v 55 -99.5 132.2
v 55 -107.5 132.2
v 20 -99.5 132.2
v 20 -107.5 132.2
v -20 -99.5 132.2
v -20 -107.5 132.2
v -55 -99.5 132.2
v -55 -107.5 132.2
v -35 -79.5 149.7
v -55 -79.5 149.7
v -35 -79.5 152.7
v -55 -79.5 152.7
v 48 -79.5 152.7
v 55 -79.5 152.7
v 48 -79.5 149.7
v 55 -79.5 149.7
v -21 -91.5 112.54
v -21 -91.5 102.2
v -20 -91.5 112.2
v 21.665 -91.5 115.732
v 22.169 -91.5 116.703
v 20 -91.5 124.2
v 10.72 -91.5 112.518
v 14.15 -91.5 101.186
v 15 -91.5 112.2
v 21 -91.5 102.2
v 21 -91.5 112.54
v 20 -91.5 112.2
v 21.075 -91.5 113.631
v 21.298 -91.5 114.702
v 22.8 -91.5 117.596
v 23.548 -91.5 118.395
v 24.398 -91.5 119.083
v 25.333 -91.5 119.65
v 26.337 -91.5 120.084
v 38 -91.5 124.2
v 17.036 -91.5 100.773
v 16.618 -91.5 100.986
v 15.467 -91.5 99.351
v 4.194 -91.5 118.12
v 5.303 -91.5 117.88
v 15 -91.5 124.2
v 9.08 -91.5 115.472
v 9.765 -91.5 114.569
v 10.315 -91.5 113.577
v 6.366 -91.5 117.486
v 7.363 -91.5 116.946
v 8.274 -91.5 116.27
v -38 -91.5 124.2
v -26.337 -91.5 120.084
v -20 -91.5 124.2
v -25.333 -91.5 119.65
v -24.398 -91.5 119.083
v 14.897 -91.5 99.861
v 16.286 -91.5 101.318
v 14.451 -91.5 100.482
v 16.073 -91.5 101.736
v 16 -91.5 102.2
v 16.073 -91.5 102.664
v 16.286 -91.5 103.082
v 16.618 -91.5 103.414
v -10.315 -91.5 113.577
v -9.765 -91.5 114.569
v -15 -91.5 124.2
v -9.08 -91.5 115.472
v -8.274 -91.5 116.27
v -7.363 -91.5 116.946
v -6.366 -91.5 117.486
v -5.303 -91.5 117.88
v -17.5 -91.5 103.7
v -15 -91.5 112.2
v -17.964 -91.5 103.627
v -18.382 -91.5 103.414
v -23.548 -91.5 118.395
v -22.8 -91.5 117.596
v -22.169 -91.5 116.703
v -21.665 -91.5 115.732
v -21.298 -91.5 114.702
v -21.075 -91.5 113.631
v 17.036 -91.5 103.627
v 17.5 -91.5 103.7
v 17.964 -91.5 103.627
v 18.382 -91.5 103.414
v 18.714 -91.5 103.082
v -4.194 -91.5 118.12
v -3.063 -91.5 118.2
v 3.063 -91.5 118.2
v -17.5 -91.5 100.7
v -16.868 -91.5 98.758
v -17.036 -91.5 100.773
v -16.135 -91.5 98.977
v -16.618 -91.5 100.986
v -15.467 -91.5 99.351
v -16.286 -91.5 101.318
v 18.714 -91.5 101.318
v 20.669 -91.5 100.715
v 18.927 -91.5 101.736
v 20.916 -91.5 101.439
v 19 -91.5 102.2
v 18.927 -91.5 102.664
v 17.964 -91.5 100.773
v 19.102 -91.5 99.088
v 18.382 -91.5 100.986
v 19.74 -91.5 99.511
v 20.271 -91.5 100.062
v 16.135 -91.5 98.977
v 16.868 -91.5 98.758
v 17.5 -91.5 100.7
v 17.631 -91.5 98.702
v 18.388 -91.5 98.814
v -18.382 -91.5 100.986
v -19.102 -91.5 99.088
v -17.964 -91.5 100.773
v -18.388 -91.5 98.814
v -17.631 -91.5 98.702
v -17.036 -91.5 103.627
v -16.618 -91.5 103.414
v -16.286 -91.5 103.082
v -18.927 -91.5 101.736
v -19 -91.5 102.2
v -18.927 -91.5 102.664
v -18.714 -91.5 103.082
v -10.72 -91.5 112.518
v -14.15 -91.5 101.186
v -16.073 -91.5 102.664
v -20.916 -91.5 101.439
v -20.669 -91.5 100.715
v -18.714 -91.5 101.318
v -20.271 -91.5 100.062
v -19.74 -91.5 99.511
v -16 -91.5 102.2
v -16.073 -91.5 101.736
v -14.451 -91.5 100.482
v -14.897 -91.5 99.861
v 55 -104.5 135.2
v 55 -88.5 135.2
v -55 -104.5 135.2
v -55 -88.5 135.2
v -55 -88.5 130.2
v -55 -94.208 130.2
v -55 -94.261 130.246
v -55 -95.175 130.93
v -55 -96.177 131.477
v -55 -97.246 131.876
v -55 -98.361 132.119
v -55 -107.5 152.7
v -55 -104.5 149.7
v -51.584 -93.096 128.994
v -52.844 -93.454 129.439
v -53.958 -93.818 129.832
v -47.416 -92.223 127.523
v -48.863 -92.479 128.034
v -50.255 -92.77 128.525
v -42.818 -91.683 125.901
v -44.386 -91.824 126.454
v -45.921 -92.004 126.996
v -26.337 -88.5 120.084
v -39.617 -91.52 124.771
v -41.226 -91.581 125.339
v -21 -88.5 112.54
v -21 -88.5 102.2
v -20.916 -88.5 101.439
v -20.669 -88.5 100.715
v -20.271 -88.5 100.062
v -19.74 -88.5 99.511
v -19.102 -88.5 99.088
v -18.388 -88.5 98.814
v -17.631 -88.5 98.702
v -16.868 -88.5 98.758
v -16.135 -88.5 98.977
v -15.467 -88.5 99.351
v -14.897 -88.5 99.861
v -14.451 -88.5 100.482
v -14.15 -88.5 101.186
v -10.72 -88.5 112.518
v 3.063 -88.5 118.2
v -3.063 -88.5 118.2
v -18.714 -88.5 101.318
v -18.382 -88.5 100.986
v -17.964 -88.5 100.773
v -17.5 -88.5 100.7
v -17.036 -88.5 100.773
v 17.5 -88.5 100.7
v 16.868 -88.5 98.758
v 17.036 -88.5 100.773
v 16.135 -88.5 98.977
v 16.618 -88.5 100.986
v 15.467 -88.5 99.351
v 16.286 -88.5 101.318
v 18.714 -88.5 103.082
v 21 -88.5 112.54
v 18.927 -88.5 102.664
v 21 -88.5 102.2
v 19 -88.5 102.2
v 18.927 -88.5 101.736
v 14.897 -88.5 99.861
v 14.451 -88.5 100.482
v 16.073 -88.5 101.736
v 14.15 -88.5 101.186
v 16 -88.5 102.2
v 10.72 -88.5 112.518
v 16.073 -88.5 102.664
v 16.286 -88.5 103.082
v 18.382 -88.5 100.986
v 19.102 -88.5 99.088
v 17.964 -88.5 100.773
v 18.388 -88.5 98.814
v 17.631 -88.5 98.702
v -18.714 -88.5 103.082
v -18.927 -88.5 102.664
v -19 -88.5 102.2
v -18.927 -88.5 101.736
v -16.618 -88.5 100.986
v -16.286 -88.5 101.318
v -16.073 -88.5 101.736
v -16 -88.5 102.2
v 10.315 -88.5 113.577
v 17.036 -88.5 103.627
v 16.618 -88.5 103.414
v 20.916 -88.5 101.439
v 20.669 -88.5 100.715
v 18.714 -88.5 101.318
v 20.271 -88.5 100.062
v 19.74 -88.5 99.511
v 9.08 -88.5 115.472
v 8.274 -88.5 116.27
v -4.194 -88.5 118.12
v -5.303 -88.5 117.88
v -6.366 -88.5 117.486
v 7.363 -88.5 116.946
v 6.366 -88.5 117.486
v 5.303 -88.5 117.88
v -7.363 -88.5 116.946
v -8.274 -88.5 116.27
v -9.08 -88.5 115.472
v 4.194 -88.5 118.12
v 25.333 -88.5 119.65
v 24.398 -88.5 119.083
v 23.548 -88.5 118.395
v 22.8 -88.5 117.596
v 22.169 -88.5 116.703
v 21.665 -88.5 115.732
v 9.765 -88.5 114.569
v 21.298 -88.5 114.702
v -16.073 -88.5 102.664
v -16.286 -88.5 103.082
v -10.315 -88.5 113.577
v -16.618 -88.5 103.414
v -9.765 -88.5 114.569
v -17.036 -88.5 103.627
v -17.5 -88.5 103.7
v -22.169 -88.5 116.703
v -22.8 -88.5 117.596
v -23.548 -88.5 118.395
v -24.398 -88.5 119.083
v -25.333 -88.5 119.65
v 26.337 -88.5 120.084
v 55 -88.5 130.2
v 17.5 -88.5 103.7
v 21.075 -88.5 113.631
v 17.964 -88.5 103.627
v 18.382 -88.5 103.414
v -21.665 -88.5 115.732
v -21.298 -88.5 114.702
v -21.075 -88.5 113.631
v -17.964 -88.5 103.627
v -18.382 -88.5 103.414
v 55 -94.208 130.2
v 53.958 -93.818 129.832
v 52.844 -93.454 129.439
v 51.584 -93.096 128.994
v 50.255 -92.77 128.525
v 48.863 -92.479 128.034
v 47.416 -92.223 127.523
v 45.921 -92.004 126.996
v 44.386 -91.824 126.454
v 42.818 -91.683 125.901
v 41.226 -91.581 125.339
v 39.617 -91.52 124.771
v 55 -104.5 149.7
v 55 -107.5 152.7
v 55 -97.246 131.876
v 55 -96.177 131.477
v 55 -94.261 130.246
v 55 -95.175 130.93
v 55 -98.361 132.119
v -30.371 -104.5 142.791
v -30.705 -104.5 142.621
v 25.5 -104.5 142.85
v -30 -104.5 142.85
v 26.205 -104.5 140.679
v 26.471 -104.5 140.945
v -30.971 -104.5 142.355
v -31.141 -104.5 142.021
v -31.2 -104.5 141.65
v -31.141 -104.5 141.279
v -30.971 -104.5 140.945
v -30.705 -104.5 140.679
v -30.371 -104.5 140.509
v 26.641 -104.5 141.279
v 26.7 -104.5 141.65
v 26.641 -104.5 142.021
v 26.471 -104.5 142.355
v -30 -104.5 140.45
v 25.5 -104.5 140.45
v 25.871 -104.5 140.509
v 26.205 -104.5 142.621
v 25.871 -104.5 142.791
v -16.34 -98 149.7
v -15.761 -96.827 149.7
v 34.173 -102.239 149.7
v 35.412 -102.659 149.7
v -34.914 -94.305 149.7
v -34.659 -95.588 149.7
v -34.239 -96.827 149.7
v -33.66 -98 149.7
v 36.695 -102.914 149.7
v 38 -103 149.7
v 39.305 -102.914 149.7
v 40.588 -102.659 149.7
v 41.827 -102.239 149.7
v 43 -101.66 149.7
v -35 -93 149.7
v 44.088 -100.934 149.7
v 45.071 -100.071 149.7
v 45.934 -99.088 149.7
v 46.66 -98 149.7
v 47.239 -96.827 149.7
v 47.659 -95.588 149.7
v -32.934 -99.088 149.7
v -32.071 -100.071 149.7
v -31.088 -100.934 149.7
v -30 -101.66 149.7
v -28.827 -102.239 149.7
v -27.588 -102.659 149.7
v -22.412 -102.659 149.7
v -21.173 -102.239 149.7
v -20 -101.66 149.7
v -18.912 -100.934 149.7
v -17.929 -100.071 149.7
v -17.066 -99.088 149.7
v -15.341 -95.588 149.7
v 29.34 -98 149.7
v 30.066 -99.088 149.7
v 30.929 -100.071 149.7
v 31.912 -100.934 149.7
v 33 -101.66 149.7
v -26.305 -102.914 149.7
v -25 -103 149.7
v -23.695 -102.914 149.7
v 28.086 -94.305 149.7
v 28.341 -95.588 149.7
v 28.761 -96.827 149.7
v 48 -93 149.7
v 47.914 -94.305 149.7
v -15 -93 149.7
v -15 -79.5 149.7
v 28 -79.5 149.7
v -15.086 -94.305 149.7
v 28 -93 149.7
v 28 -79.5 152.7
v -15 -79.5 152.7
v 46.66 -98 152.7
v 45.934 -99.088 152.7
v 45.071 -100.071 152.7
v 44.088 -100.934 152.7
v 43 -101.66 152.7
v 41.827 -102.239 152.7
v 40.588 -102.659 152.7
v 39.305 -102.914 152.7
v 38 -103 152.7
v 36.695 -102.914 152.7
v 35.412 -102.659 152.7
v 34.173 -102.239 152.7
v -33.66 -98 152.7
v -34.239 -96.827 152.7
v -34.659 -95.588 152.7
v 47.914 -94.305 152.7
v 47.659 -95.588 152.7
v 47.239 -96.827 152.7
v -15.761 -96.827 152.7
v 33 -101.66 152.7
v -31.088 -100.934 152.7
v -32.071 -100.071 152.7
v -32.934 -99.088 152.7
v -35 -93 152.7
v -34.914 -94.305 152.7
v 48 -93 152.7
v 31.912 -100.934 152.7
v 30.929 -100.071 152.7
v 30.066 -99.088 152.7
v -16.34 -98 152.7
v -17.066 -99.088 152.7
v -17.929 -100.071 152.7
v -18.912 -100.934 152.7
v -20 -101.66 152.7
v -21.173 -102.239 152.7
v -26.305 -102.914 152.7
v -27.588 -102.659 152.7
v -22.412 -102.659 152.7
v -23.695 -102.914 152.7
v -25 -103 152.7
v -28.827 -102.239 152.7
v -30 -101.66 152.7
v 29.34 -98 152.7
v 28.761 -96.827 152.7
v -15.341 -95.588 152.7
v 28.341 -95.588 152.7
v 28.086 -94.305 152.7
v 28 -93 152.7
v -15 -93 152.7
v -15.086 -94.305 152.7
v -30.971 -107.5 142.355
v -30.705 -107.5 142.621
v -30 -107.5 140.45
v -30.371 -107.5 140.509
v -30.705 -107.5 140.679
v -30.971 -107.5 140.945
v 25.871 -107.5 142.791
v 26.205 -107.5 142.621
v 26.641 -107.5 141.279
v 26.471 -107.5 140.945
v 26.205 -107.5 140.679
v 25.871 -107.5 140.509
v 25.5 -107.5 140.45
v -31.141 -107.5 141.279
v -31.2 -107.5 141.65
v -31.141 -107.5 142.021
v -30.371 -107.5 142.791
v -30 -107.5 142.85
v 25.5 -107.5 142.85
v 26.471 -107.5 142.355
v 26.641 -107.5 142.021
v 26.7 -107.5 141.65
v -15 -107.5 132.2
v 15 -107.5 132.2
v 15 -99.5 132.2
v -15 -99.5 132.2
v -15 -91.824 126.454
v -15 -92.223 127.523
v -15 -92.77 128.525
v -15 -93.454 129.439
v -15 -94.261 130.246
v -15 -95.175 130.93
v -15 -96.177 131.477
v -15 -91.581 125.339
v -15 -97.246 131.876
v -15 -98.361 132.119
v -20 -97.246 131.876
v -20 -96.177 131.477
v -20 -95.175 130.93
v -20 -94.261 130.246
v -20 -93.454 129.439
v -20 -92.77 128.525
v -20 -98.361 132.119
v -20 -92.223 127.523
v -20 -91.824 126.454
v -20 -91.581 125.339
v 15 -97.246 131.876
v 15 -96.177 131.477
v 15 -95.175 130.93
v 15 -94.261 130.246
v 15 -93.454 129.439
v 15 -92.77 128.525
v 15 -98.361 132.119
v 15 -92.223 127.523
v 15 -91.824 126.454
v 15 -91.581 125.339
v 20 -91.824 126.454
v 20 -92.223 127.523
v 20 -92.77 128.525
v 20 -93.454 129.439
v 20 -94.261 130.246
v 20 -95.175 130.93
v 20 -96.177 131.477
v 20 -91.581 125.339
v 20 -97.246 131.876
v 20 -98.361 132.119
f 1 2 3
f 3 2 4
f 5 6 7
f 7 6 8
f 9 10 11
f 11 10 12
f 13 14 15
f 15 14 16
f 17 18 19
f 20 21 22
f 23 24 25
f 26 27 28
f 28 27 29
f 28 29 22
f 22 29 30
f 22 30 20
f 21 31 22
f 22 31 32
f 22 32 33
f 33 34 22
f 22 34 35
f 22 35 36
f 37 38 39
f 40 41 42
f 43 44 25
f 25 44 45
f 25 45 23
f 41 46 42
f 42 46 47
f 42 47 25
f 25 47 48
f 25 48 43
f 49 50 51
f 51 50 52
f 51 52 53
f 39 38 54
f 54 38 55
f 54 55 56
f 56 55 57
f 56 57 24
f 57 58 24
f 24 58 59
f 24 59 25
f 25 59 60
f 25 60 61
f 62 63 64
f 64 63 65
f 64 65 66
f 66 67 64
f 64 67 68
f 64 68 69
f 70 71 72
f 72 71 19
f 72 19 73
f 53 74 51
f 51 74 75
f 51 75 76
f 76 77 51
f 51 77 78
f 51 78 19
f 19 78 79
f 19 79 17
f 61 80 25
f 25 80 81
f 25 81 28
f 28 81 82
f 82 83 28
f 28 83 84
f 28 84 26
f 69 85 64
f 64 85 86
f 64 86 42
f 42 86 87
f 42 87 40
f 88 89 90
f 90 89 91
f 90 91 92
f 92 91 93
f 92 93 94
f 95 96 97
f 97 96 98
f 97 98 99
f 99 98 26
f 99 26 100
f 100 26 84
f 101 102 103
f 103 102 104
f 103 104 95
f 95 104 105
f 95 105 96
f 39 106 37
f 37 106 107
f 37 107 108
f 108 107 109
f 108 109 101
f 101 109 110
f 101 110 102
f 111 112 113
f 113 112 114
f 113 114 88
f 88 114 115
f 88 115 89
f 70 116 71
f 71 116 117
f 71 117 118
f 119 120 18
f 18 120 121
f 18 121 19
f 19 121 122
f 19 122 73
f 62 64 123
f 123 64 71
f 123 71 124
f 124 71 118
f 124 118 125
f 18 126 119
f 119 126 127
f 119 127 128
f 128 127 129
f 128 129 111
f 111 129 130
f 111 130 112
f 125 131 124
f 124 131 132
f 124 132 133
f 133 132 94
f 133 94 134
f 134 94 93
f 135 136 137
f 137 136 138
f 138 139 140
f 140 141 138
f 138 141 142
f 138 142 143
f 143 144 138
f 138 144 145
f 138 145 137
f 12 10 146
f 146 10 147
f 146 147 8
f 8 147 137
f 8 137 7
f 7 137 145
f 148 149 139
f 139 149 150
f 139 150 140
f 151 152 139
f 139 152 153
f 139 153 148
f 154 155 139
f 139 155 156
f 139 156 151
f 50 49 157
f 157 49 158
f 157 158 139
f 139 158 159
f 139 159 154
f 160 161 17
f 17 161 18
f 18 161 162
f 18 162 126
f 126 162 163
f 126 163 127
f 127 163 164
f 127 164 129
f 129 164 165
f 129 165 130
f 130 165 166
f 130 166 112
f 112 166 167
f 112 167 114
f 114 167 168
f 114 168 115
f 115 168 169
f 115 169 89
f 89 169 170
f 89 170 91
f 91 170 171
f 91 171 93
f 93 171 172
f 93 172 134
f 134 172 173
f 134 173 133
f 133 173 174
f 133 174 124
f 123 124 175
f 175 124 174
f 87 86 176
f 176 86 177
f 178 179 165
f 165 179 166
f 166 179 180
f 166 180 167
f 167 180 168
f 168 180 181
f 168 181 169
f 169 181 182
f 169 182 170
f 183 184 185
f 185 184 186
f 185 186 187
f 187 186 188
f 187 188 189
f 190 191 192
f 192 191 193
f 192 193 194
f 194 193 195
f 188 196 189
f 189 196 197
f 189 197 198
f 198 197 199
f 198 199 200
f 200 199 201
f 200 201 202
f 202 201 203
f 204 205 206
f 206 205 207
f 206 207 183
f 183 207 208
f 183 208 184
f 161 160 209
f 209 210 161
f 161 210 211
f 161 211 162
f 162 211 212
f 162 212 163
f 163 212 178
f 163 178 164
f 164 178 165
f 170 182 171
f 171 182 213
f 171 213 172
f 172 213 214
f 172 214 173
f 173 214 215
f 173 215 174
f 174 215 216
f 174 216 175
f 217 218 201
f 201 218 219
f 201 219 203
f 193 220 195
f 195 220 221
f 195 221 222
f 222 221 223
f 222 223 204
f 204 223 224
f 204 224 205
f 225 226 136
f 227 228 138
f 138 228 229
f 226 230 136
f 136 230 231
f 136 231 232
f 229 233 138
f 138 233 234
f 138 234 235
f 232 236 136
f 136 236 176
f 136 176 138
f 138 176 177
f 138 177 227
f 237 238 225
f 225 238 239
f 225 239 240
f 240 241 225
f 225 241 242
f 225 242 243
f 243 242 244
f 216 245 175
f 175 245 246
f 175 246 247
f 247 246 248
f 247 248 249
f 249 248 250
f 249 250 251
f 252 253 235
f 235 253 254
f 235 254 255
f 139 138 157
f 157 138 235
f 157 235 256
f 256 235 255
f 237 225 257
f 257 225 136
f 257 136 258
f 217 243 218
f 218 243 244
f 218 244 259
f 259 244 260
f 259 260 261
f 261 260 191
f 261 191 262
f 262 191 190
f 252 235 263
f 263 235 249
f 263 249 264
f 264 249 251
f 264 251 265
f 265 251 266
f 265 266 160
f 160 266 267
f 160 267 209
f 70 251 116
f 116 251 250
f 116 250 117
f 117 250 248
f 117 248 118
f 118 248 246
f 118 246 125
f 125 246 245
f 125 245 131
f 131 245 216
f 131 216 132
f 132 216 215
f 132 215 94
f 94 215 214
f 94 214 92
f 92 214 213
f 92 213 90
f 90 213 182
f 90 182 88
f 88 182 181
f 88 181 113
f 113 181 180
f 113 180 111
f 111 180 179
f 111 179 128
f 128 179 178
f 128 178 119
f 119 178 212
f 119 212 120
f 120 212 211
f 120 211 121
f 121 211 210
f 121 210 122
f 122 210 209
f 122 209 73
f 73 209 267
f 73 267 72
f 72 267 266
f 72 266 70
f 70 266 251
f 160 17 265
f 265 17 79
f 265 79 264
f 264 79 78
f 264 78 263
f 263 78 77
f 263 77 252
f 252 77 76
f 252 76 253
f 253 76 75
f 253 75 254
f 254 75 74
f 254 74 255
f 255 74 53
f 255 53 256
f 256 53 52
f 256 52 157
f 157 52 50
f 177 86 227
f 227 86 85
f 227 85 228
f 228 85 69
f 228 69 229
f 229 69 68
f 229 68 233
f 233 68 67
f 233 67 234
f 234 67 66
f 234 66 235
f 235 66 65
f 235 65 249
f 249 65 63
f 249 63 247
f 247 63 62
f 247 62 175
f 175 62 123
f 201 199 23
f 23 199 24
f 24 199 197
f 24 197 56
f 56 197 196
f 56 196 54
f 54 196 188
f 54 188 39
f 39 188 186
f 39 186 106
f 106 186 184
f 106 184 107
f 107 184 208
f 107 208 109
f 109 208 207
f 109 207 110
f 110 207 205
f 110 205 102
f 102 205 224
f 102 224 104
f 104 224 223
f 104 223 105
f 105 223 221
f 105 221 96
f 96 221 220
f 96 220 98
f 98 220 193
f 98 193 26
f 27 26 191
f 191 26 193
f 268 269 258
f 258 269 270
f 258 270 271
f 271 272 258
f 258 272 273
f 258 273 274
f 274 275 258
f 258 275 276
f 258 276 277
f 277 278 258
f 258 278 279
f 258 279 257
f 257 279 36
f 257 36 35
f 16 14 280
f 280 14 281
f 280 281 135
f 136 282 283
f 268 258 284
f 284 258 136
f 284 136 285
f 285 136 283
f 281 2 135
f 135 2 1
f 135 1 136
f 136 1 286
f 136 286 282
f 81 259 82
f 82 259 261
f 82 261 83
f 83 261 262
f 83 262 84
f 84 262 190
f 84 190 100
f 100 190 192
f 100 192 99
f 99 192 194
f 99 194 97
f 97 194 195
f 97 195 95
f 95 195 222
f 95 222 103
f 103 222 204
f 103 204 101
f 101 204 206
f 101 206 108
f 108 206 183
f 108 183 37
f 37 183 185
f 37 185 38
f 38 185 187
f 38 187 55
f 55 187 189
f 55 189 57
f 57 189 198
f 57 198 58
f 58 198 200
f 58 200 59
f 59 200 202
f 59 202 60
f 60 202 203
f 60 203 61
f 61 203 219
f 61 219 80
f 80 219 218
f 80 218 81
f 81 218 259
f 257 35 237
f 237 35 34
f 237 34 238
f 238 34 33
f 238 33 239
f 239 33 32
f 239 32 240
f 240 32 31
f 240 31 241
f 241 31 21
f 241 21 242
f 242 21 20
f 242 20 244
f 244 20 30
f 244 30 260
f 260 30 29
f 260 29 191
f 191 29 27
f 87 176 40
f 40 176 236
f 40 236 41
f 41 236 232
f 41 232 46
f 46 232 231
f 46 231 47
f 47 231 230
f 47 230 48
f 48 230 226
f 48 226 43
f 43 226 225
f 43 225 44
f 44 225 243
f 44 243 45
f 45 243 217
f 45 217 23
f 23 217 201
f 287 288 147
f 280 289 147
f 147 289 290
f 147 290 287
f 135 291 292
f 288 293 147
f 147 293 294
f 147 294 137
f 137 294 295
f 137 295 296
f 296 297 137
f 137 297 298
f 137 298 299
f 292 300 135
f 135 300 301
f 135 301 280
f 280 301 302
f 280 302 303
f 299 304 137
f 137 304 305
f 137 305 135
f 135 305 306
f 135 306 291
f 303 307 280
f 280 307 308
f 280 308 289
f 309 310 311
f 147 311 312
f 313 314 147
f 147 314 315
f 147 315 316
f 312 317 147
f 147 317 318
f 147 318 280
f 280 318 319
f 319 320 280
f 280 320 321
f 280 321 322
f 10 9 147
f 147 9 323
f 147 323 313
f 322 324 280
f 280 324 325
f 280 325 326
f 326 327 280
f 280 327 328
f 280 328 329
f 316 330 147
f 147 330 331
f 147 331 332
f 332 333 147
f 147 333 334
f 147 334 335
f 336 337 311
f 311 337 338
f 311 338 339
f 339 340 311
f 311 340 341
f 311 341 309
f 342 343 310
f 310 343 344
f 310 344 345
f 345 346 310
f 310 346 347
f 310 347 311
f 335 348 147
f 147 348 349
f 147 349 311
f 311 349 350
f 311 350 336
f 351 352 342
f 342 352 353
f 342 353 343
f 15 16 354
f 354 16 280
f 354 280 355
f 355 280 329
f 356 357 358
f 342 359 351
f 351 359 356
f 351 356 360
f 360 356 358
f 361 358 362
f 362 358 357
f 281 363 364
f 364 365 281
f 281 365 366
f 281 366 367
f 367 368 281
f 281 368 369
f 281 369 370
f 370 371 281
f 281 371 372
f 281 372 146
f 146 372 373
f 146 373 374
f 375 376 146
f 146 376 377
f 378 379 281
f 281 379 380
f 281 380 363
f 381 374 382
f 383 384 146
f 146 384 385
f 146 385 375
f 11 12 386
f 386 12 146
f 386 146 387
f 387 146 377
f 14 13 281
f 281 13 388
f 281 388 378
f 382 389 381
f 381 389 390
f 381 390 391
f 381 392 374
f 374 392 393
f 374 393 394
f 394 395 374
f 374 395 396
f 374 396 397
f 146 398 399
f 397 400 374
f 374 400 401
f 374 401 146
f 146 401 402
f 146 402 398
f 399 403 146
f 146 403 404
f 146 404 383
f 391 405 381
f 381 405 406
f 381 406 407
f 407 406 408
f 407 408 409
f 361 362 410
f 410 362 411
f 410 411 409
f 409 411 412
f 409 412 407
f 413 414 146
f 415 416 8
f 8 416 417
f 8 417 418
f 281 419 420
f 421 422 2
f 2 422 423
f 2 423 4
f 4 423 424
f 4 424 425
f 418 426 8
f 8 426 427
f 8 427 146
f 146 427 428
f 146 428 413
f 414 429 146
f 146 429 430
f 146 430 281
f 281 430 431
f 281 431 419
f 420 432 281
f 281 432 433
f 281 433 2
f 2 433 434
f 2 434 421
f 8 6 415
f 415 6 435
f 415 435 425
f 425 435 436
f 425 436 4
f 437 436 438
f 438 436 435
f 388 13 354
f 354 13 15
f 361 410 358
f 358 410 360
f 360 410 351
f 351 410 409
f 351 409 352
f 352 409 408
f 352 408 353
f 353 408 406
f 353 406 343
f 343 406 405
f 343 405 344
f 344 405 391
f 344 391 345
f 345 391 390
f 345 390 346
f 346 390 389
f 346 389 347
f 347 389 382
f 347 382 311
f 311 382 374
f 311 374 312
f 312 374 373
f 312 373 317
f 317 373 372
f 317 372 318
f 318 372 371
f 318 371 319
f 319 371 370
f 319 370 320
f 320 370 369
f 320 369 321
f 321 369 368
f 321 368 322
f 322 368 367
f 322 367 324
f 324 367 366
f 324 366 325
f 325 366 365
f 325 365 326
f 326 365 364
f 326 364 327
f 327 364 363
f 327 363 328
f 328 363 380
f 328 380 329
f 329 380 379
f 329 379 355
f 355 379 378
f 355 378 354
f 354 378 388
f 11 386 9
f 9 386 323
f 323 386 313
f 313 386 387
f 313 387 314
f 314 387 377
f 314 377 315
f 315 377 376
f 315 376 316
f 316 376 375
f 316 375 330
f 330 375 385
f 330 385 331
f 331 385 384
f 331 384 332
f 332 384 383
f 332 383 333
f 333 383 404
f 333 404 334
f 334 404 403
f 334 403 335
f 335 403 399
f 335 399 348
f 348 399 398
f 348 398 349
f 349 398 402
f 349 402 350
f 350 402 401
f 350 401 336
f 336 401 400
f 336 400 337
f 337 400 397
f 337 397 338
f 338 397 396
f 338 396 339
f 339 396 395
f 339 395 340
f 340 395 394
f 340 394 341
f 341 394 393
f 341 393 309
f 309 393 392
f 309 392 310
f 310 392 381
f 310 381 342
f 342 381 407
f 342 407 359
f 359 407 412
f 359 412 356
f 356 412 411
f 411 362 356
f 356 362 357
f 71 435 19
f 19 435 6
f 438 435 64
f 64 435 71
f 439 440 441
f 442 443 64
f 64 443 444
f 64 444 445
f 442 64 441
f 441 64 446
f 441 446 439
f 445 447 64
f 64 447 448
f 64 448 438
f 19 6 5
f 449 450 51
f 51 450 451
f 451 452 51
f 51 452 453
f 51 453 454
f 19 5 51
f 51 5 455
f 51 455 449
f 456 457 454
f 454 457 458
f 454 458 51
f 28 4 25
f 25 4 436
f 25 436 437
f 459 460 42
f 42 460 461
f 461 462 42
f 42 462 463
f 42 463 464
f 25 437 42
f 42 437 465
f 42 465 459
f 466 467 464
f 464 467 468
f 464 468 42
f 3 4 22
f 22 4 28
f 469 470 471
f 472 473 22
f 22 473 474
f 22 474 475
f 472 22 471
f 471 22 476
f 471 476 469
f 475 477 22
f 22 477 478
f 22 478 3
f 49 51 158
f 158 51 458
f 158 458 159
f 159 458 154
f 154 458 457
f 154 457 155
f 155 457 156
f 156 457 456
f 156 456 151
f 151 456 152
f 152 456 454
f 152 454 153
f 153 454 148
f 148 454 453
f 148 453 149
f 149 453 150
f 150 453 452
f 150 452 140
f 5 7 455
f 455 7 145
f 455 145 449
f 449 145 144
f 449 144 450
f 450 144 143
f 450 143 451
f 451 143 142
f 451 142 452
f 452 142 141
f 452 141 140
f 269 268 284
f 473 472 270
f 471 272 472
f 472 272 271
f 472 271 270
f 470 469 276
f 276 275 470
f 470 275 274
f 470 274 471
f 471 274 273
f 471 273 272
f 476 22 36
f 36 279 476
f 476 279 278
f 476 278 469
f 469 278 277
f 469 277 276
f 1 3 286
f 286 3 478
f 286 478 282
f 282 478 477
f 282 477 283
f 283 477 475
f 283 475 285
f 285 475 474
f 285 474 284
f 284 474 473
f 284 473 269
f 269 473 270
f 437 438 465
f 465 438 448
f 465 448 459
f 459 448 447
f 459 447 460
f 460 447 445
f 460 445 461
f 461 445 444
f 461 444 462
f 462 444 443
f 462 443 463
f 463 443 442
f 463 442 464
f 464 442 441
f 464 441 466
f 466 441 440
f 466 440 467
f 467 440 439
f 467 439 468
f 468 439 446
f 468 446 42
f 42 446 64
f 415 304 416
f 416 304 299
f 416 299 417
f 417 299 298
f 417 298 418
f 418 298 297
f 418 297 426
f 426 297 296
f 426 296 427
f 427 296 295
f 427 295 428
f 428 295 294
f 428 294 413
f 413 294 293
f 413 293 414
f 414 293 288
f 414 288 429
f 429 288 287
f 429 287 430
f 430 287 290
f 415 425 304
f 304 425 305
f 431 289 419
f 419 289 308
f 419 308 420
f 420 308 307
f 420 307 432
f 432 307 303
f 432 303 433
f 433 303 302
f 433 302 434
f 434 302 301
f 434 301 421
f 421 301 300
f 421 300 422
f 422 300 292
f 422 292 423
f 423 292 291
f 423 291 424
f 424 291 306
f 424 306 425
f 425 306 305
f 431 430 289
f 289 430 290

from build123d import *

# Parameters (mm, degrees)
SKETCH2_R                = 1.5
BOSS_EXTRUDE1_DEPTH      = 3
FILLET2_R                = 8
FILLET2_OF_MIRROR1_R     = 8
BOSS_EXTRUDE2_DEPTH      = 55
BOSS_EXTRUDE2_DEPTH_BACK = 55
CUT_EXTRUDE1_REACH       = 134.277
RIB1_REACH               = 202.324
SKETCH6_WALL_W           = 428.260921382
SKETCH6_WALL_H           = 5
FILLET3_R                = 8
CUT_EXTRUDE2_DEPTH       = 165.217203727


with BuildPart() as part:
    # Sketch2 → Boss-Extrude1 (new body)
    with BuildSketch(Plane(origin=(0, -88.5, 0), x_dir=(1, 0, 0), z_dir=(0, 1, 0))):
        with BuildLine():
            Line((-9, -118.2), (-14.150105789, -101.1859937))
            ThreePointArc((-14.150105789, -101.1859937), (-18.012528176, -98.73772981), (-21, -102.2))
            Line((-21, -102.2), (-21, -118.2))
            Line((-21, -118.2), (-55, -130.2))
            Line((-55, -130.2), (-55, -135.2))
            Line((-55, -135.2), (0, -135.2))
            Line((0, -135.2), (0, -118.2))
            Line((0, -118.2), (-9, -118.2))
        make_face()
        with Locations(Location((-17.5, -102.2, 0), (0, 0, 270))):
            Circle(SKETCH2_R, mode=Mode.SUBTRACT)
    boss_extrude1 = extrude(amount=-BOSS_EXTRUDE1_DEPTH)

    # Fillet2
    fillet2_edges = [part.edges().sort_by_distance(p)[0] for p in [
        (-21, -90, 118.2),
        (-9, -90, 118.2),
    ]]
    fillet(fillet2_edges, radius=FILLET2_R)

    # Mirror1: Boss-Extrude1 across plane
    add(boss_extrude1.mirror(Plane(origin=(0, 0, 0), x_dir=(0, 0, 1), z_dir=(1, 0, 0))))

    # Fillet2 of Mirror1
    fillet2_of_mirror1_edges = [part.edges().sort_by_distance(p)[0] for p in [
        (21, -90, 118.2),
        (9, -90, 118.2),
    ]]
    fillet(fillet2_of_mirror1_edges, radius=FILLET2_OF_MIRROR1_R)

    # Sketch4 → Boss-Extrude2 (add, two sides: drawn at the far end of the back side and taken through both)
    with BuildSketch(Plane(origin=(0, 0, 0), x_dir=(0, 0, -1), z_dir=(1, 0, 0)).offset(-BOSS_EXTRUDE2_DEPTH_BACK)):
        Polygon((-135.2, -91.5), (-135.2, -104.5), (-149.7, -104.5), (-149.7, -79.5), (-152.7, -79.5), (-152.7, -107.5), (-132.2, -107.5), (-132.2, -91.5), align=None)
    extrude(amount=BOSS_EXTRUDE2_DEPTH + BOSS_EXTRUDE2_DEPTH_BACK)

    # Sketch5 → Cut-Extrude1 (cut, up to next)
    with BuildSketch(Plane.XY.offset(152.7), mode=Mode.PRIVATE) as cut_extrude1_sk1:
        with BuildLine():
            Line((-35, -93), (-35, -73))
            Line((-35, -73), (-15, -73))
            Line((-15, -73), (-15, -93))
            ThreePointArc((-15, -93), (-25, -103), (-35, -93))
        make_face()
    cut_extrude1_tool1 = extrude(cut_extrude1_sk1.sketch, amount=-CUT_EXTRUDE1_REACH, mode=Mode.PRIVATE) & part.part
    # Sketch5 → Cut-Extrude1 (cut, up to next)
    with BuildSketch(Plane.XY.offset(152.7), mode=Mode.PRIVATE) as cut_extrude1_sk2:
        with BuildLine():
            Line((28, -93), (28, -73))
            Line((28, -73), (48, -73))
            Line((48, -73), (48, -93))
            ThreePointArc((48, -93), (38, -103), (28, -93))
        make_face()
    cut_extrude1_tool2 = extrude(cut_extrude1_sk2.sketch, amount=-CUT_EXTRUDE1_REACH, mode=Mode.PRIVATE) & part.part
    add(cut_extrude1_tool1.solids().sort_by_distance((-25, -87.016415, 152.7))[0], mode=Mode.SUBTRACT)
    add(cut_extrude1_tool2.solids().sort_by_distance((38, -87.016415, 152.7))[0], mode=Mode.SUBTRACT)

    # Sketch6 wall → Rib1 (add, up to next)
    with BuildSketch(Plane(origin=(-17.5, -99.5, 122.2), x_dir=(0, -0.624695047554, 0.780868809443), z_dir=(0, -0.780868809443, -0.624695047554)), mode=Mode.PRIVATE) as rib1_sk1:
        Rectangle(SKETCH6_WALL_W, SKETCH6_WALL_H)
    rib1_tool1 = extrude(rib1_sk1.sketch, amount=-RIB1_REACH, mode=Mode.PRIVATE) - part.part
    rib1 = rib1_tool1.solids().sort_by_distance((-17.5, -99.5, 122.2))[0]
    add(rib1)

    # Mirror2: Rib1 across plane
    add(rib1.mirror(Plane(origin=(0, 0, 0), x_dir=(0, 0, 1), z_dir=(1, 0, 0))))

    # Fillet3
    fillet3_edges = [part.edges().sort_by_distance(p)[0] for p in [
        (-37.5, -91.5, 132.2),
        (37.5, -91.5, 132.2),
        (0, -91.5, 132.2),
    ]]
    fillet(fillet3_edges, radius=FILLET3_R)

    # Sketch7 → Cut-Extrude2 (cut, through all)
    with BuildSketch(Plane(origin=(0, -104.5, 0), x_dir=(1, 0, 0), z_dir=(0, 1, 0))):
        with BuildLine():
            Line((-30, -140.45), (25.5, -140.45))
            ThreePointArc((25.5, -140.45), (26.7, -141.65), (25.5, -142.85))
            Line((25.5, -142.85), (-30, -142.85))
            ThreePointArc((-30, -142.85), (-31.2, -141.65), (-30, -140.45))
        make_face()
    extrude(amount=-CUT_EXTRUDE2_DEPTH, mode=Mode.SUBTRACT)


solid = part.part
